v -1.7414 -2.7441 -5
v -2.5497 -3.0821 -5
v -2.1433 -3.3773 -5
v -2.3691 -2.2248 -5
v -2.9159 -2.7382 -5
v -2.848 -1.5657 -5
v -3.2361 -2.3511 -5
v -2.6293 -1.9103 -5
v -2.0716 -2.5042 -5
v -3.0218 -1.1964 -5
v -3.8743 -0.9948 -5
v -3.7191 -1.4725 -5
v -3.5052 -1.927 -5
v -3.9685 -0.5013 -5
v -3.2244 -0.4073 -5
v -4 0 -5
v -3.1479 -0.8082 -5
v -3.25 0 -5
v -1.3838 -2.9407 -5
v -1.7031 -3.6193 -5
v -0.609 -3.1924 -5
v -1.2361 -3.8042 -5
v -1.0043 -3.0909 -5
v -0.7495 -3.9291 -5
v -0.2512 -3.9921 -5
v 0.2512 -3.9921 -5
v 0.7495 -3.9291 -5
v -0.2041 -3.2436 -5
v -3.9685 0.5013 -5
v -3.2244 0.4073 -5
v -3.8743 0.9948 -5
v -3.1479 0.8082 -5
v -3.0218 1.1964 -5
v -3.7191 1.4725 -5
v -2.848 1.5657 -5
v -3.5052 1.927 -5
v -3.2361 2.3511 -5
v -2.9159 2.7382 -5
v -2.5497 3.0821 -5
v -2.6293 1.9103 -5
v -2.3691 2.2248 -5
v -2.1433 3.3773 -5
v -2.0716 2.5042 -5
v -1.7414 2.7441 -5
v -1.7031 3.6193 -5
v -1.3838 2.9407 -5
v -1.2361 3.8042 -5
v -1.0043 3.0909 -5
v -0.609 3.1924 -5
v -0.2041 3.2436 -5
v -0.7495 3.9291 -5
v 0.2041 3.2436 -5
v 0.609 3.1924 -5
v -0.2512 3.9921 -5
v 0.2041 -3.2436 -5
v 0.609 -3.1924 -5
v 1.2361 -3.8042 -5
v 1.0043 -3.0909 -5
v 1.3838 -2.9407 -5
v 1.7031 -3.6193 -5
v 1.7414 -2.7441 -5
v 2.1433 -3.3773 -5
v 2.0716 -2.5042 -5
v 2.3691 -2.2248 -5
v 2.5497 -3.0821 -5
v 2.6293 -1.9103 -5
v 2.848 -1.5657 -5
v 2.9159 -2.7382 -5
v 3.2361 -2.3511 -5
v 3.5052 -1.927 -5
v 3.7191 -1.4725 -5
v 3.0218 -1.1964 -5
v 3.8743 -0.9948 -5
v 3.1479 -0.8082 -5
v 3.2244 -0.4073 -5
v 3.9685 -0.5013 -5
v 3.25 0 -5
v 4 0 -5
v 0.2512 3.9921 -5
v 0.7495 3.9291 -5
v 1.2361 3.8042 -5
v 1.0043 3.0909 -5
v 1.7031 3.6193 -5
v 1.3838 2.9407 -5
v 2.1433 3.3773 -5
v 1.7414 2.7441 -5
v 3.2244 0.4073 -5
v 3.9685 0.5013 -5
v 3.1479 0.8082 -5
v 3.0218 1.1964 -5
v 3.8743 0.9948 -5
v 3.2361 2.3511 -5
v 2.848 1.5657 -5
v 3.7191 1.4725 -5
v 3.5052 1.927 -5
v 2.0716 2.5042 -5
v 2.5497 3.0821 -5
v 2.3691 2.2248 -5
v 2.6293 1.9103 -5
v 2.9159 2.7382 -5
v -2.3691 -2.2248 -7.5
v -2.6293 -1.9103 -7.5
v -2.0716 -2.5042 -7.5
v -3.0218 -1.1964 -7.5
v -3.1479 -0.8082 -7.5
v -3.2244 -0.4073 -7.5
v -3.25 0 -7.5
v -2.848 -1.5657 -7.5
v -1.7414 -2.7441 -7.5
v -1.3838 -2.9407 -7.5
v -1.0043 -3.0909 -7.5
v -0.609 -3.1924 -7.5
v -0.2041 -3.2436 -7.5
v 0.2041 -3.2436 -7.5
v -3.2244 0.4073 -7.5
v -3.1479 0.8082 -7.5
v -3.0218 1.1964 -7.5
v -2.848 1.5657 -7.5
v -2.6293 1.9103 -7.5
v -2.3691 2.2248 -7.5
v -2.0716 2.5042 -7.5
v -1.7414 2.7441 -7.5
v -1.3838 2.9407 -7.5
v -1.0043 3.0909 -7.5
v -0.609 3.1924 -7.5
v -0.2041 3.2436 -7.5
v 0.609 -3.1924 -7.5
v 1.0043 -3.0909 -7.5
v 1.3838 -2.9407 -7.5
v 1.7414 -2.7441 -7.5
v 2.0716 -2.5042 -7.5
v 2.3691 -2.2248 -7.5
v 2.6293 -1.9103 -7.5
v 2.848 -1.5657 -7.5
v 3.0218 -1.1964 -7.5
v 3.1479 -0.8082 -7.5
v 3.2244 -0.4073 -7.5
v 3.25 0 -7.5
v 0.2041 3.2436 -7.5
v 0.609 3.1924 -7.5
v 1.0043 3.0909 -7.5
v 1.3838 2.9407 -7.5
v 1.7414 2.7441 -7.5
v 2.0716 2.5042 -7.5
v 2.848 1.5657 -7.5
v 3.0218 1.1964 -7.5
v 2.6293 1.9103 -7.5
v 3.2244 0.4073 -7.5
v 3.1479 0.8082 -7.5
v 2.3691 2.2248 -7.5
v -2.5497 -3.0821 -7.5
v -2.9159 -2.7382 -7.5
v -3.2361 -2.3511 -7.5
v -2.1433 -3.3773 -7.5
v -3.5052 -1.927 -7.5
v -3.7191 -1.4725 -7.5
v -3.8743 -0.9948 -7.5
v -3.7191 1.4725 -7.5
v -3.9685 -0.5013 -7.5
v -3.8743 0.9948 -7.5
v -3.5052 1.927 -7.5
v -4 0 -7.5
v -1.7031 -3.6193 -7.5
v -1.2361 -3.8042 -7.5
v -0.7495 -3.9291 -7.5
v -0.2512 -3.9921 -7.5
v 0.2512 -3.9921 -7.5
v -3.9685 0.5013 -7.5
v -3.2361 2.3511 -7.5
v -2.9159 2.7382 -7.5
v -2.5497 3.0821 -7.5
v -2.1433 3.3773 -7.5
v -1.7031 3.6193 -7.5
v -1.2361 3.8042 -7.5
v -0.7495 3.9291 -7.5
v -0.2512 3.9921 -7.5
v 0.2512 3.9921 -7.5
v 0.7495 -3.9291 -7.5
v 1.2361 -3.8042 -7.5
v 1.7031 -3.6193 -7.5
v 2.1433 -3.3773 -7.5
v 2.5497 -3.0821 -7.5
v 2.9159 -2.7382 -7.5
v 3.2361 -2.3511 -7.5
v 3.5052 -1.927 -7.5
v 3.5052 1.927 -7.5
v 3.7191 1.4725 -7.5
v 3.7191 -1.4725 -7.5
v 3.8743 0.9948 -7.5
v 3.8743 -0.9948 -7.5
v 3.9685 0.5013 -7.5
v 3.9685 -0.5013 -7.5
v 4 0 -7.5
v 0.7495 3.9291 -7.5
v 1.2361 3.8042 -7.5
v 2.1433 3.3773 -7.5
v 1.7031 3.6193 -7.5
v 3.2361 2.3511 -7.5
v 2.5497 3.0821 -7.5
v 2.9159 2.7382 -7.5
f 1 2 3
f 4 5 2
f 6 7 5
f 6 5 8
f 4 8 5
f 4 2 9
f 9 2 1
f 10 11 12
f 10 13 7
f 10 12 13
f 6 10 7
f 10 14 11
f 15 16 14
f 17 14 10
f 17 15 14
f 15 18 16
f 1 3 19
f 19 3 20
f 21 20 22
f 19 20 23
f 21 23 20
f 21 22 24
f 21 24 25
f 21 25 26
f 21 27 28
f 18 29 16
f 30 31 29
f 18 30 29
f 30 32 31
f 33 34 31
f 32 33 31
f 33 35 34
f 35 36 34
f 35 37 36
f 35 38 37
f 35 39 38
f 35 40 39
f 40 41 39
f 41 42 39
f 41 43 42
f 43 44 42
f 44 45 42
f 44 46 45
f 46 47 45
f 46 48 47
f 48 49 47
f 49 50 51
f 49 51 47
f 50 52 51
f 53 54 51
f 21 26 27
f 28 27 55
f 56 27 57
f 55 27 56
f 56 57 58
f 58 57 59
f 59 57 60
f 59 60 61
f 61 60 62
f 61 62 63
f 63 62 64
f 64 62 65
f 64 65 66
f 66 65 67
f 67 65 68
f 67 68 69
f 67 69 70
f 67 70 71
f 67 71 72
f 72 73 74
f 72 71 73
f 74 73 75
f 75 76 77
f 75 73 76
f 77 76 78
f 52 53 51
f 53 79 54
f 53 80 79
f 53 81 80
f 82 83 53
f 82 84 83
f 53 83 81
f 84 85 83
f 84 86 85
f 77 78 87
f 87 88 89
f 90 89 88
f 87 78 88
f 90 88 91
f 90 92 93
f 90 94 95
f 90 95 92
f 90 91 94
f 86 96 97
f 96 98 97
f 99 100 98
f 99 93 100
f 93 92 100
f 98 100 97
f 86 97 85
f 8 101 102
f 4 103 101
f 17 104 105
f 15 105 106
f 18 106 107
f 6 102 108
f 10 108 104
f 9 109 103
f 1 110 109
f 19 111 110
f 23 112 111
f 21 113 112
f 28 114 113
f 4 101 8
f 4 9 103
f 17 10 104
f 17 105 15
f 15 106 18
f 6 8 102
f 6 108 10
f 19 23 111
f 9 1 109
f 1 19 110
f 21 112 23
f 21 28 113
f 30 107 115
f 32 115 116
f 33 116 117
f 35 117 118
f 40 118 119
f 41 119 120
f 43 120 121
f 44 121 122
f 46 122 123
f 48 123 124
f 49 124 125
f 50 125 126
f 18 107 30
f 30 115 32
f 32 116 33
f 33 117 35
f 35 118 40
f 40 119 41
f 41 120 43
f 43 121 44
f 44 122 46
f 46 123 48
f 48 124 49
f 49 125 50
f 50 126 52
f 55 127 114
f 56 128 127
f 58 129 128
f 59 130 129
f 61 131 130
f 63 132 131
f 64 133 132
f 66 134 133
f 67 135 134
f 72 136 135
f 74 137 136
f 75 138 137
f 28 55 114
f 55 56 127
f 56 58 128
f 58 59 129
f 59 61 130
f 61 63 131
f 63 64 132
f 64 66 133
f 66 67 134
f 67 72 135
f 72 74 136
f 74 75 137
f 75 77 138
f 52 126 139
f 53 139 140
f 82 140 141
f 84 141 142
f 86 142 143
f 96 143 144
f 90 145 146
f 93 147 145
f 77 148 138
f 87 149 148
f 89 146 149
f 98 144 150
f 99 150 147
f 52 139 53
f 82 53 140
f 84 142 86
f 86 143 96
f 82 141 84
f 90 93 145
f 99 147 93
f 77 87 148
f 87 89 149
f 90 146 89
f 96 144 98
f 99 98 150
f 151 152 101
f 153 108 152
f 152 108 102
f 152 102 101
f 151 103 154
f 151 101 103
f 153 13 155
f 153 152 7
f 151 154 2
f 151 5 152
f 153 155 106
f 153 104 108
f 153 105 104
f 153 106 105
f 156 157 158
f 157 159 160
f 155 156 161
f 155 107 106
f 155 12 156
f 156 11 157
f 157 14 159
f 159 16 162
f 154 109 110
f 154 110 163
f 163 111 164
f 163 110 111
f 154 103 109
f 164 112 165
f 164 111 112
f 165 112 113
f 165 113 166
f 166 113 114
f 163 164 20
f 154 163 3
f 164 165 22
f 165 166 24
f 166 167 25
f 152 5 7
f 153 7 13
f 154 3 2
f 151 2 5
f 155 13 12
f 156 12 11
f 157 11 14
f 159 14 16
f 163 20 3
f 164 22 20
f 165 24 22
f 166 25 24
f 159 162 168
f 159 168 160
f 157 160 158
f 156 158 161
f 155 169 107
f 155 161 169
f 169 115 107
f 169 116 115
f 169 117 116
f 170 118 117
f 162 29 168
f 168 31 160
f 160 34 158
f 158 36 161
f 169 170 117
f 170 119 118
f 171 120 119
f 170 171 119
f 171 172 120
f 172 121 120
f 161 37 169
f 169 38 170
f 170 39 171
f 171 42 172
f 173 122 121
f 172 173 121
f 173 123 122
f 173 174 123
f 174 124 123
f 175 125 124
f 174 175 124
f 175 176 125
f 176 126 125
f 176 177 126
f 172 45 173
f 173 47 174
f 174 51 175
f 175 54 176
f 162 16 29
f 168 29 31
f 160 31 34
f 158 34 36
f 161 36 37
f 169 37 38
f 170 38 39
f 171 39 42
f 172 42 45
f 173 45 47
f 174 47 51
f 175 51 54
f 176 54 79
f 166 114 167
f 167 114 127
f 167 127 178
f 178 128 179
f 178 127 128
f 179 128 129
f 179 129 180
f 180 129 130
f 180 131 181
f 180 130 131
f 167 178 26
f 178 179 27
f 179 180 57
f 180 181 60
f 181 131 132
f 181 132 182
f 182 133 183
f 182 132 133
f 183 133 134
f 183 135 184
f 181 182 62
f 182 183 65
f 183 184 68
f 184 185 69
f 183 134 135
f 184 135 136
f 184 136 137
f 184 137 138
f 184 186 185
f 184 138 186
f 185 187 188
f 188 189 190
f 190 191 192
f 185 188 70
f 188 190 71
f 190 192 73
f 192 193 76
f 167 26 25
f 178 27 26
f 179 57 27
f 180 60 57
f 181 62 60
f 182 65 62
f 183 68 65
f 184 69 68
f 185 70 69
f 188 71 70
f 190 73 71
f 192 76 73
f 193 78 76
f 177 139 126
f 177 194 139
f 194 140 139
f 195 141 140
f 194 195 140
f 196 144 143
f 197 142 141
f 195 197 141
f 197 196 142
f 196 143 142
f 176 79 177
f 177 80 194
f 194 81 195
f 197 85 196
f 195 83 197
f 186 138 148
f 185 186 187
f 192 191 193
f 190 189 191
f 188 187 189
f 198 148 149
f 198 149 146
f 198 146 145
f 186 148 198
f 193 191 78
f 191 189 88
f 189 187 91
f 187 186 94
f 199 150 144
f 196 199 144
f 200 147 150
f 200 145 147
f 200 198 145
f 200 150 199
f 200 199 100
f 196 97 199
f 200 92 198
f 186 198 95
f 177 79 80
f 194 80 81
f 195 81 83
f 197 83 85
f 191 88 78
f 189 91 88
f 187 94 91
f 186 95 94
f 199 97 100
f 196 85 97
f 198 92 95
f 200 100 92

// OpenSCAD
$fn = 50;

difference() {
	union() {
		translate(v = [0, 0, -7.5]) {
			cylinder(h = 10.5, r = 4.0);
		}
	}
	union() {
		translate(v = [0, 0, 0]) {
			rotate(a = [0, 0, 0]) {
				difference() {
					union() {
						translate(v = [0, 0, -5]) {
							linear_extrude(height = 5) {
								polygon(points = [[5.914249999999999, 0.0], [2.957125, 5.1218907443321156], [-2.9571249999999982, 5.1218907443321156], [-5.914249999999999, 7.242867331857232e-16], [-2.9571250000000022, -5.121890744332115], [2.9571249999999956, -5.121890744332118]]);
							}
						}
					}
					union();
				}
			}
		}
		#cylinder(h = 3, r = 6.25);
		#translate(v = [0, 0, -100.0]) {
			cylinder(h = 200, r = 3.25);
		}
	}
}
